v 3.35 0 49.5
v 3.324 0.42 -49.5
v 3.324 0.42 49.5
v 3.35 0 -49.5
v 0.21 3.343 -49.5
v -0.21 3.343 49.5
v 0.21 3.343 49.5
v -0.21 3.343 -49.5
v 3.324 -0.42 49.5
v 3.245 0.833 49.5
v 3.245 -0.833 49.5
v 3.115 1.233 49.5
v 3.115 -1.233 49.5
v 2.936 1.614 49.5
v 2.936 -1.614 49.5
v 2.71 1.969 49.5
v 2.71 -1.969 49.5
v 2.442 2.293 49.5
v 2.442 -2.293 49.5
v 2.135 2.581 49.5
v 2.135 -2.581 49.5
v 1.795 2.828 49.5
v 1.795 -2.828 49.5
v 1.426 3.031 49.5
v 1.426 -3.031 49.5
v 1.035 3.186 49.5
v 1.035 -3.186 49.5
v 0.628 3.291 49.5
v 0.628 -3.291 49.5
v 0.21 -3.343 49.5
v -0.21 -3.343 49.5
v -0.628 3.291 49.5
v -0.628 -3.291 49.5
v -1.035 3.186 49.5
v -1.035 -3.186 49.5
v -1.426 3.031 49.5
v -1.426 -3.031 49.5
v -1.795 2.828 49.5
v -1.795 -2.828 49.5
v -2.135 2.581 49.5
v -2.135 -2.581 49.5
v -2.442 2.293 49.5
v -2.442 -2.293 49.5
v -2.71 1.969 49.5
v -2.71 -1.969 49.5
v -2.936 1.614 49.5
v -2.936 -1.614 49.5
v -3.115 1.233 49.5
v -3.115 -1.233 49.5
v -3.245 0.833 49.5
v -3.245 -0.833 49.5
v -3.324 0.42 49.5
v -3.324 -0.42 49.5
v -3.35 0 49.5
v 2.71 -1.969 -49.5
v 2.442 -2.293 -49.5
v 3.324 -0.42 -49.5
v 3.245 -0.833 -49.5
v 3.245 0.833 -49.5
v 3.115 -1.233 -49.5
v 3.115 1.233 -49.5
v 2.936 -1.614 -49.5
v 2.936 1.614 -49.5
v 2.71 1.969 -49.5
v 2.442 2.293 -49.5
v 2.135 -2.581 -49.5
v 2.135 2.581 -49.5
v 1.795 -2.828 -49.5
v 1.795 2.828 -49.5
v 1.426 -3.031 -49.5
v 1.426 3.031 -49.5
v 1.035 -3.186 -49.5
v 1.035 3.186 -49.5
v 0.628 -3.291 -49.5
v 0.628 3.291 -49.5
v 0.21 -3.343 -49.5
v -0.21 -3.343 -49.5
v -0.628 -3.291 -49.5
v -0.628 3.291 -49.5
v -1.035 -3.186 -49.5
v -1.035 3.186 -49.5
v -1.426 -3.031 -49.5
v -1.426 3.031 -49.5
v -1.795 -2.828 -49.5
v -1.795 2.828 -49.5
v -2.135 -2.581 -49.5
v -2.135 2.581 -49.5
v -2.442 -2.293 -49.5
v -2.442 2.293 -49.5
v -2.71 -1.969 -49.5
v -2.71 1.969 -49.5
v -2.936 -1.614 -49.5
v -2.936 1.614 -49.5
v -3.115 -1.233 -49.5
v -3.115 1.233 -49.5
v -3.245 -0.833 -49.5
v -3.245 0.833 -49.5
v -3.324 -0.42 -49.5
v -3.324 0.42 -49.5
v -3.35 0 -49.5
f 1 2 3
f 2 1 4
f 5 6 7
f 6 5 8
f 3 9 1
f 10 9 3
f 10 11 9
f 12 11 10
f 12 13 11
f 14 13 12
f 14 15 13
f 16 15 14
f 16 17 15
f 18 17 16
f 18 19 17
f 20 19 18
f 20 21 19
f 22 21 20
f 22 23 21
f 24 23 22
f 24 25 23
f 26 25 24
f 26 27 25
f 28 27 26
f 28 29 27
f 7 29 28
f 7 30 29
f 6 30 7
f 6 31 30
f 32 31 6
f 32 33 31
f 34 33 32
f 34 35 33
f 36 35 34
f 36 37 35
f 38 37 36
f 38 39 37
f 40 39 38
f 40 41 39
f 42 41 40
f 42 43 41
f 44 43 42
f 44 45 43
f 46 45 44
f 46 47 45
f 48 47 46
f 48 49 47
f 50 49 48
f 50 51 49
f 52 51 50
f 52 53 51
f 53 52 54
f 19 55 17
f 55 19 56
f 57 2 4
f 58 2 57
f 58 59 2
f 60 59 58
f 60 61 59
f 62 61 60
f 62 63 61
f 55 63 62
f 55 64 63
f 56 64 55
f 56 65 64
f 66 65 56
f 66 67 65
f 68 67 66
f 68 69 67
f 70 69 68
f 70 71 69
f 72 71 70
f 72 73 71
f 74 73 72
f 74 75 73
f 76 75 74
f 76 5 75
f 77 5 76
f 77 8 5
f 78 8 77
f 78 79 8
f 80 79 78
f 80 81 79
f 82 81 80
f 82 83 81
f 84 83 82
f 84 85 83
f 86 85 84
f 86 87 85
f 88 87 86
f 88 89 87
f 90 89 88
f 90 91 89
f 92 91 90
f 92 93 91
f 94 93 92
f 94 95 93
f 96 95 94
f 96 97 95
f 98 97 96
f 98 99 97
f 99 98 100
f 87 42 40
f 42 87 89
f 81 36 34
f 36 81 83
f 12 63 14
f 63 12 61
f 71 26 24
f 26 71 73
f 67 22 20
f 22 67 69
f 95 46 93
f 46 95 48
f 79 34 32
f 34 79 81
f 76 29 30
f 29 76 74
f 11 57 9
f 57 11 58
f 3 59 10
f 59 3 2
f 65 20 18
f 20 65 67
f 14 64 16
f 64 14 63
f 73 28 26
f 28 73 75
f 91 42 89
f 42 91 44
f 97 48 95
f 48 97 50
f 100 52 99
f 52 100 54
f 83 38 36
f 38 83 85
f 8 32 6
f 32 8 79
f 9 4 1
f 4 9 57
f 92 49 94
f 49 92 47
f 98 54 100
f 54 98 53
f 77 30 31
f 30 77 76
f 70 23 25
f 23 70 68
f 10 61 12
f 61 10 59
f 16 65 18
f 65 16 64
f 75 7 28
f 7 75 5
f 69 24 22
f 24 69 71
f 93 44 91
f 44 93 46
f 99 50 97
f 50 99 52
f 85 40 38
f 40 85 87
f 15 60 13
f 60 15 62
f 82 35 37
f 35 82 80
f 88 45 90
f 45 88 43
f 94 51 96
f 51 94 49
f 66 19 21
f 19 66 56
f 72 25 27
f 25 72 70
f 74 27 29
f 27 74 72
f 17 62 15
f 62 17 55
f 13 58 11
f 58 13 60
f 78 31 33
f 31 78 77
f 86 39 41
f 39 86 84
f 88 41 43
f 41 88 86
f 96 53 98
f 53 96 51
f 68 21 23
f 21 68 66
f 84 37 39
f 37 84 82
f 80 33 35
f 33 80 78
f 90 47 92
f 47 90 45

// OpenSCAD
$fn = 50;


difference() {
	union() {
		translate(v = [0, 0, -49.5000000000]) {
			cylinder(h = 99, r = 3.3500000000);
		}
	}
	union() {
		translate(v = [0, 0, -100.0000000000]) {
			cylinder(h = 200, r = 0);
		}
	}
}
